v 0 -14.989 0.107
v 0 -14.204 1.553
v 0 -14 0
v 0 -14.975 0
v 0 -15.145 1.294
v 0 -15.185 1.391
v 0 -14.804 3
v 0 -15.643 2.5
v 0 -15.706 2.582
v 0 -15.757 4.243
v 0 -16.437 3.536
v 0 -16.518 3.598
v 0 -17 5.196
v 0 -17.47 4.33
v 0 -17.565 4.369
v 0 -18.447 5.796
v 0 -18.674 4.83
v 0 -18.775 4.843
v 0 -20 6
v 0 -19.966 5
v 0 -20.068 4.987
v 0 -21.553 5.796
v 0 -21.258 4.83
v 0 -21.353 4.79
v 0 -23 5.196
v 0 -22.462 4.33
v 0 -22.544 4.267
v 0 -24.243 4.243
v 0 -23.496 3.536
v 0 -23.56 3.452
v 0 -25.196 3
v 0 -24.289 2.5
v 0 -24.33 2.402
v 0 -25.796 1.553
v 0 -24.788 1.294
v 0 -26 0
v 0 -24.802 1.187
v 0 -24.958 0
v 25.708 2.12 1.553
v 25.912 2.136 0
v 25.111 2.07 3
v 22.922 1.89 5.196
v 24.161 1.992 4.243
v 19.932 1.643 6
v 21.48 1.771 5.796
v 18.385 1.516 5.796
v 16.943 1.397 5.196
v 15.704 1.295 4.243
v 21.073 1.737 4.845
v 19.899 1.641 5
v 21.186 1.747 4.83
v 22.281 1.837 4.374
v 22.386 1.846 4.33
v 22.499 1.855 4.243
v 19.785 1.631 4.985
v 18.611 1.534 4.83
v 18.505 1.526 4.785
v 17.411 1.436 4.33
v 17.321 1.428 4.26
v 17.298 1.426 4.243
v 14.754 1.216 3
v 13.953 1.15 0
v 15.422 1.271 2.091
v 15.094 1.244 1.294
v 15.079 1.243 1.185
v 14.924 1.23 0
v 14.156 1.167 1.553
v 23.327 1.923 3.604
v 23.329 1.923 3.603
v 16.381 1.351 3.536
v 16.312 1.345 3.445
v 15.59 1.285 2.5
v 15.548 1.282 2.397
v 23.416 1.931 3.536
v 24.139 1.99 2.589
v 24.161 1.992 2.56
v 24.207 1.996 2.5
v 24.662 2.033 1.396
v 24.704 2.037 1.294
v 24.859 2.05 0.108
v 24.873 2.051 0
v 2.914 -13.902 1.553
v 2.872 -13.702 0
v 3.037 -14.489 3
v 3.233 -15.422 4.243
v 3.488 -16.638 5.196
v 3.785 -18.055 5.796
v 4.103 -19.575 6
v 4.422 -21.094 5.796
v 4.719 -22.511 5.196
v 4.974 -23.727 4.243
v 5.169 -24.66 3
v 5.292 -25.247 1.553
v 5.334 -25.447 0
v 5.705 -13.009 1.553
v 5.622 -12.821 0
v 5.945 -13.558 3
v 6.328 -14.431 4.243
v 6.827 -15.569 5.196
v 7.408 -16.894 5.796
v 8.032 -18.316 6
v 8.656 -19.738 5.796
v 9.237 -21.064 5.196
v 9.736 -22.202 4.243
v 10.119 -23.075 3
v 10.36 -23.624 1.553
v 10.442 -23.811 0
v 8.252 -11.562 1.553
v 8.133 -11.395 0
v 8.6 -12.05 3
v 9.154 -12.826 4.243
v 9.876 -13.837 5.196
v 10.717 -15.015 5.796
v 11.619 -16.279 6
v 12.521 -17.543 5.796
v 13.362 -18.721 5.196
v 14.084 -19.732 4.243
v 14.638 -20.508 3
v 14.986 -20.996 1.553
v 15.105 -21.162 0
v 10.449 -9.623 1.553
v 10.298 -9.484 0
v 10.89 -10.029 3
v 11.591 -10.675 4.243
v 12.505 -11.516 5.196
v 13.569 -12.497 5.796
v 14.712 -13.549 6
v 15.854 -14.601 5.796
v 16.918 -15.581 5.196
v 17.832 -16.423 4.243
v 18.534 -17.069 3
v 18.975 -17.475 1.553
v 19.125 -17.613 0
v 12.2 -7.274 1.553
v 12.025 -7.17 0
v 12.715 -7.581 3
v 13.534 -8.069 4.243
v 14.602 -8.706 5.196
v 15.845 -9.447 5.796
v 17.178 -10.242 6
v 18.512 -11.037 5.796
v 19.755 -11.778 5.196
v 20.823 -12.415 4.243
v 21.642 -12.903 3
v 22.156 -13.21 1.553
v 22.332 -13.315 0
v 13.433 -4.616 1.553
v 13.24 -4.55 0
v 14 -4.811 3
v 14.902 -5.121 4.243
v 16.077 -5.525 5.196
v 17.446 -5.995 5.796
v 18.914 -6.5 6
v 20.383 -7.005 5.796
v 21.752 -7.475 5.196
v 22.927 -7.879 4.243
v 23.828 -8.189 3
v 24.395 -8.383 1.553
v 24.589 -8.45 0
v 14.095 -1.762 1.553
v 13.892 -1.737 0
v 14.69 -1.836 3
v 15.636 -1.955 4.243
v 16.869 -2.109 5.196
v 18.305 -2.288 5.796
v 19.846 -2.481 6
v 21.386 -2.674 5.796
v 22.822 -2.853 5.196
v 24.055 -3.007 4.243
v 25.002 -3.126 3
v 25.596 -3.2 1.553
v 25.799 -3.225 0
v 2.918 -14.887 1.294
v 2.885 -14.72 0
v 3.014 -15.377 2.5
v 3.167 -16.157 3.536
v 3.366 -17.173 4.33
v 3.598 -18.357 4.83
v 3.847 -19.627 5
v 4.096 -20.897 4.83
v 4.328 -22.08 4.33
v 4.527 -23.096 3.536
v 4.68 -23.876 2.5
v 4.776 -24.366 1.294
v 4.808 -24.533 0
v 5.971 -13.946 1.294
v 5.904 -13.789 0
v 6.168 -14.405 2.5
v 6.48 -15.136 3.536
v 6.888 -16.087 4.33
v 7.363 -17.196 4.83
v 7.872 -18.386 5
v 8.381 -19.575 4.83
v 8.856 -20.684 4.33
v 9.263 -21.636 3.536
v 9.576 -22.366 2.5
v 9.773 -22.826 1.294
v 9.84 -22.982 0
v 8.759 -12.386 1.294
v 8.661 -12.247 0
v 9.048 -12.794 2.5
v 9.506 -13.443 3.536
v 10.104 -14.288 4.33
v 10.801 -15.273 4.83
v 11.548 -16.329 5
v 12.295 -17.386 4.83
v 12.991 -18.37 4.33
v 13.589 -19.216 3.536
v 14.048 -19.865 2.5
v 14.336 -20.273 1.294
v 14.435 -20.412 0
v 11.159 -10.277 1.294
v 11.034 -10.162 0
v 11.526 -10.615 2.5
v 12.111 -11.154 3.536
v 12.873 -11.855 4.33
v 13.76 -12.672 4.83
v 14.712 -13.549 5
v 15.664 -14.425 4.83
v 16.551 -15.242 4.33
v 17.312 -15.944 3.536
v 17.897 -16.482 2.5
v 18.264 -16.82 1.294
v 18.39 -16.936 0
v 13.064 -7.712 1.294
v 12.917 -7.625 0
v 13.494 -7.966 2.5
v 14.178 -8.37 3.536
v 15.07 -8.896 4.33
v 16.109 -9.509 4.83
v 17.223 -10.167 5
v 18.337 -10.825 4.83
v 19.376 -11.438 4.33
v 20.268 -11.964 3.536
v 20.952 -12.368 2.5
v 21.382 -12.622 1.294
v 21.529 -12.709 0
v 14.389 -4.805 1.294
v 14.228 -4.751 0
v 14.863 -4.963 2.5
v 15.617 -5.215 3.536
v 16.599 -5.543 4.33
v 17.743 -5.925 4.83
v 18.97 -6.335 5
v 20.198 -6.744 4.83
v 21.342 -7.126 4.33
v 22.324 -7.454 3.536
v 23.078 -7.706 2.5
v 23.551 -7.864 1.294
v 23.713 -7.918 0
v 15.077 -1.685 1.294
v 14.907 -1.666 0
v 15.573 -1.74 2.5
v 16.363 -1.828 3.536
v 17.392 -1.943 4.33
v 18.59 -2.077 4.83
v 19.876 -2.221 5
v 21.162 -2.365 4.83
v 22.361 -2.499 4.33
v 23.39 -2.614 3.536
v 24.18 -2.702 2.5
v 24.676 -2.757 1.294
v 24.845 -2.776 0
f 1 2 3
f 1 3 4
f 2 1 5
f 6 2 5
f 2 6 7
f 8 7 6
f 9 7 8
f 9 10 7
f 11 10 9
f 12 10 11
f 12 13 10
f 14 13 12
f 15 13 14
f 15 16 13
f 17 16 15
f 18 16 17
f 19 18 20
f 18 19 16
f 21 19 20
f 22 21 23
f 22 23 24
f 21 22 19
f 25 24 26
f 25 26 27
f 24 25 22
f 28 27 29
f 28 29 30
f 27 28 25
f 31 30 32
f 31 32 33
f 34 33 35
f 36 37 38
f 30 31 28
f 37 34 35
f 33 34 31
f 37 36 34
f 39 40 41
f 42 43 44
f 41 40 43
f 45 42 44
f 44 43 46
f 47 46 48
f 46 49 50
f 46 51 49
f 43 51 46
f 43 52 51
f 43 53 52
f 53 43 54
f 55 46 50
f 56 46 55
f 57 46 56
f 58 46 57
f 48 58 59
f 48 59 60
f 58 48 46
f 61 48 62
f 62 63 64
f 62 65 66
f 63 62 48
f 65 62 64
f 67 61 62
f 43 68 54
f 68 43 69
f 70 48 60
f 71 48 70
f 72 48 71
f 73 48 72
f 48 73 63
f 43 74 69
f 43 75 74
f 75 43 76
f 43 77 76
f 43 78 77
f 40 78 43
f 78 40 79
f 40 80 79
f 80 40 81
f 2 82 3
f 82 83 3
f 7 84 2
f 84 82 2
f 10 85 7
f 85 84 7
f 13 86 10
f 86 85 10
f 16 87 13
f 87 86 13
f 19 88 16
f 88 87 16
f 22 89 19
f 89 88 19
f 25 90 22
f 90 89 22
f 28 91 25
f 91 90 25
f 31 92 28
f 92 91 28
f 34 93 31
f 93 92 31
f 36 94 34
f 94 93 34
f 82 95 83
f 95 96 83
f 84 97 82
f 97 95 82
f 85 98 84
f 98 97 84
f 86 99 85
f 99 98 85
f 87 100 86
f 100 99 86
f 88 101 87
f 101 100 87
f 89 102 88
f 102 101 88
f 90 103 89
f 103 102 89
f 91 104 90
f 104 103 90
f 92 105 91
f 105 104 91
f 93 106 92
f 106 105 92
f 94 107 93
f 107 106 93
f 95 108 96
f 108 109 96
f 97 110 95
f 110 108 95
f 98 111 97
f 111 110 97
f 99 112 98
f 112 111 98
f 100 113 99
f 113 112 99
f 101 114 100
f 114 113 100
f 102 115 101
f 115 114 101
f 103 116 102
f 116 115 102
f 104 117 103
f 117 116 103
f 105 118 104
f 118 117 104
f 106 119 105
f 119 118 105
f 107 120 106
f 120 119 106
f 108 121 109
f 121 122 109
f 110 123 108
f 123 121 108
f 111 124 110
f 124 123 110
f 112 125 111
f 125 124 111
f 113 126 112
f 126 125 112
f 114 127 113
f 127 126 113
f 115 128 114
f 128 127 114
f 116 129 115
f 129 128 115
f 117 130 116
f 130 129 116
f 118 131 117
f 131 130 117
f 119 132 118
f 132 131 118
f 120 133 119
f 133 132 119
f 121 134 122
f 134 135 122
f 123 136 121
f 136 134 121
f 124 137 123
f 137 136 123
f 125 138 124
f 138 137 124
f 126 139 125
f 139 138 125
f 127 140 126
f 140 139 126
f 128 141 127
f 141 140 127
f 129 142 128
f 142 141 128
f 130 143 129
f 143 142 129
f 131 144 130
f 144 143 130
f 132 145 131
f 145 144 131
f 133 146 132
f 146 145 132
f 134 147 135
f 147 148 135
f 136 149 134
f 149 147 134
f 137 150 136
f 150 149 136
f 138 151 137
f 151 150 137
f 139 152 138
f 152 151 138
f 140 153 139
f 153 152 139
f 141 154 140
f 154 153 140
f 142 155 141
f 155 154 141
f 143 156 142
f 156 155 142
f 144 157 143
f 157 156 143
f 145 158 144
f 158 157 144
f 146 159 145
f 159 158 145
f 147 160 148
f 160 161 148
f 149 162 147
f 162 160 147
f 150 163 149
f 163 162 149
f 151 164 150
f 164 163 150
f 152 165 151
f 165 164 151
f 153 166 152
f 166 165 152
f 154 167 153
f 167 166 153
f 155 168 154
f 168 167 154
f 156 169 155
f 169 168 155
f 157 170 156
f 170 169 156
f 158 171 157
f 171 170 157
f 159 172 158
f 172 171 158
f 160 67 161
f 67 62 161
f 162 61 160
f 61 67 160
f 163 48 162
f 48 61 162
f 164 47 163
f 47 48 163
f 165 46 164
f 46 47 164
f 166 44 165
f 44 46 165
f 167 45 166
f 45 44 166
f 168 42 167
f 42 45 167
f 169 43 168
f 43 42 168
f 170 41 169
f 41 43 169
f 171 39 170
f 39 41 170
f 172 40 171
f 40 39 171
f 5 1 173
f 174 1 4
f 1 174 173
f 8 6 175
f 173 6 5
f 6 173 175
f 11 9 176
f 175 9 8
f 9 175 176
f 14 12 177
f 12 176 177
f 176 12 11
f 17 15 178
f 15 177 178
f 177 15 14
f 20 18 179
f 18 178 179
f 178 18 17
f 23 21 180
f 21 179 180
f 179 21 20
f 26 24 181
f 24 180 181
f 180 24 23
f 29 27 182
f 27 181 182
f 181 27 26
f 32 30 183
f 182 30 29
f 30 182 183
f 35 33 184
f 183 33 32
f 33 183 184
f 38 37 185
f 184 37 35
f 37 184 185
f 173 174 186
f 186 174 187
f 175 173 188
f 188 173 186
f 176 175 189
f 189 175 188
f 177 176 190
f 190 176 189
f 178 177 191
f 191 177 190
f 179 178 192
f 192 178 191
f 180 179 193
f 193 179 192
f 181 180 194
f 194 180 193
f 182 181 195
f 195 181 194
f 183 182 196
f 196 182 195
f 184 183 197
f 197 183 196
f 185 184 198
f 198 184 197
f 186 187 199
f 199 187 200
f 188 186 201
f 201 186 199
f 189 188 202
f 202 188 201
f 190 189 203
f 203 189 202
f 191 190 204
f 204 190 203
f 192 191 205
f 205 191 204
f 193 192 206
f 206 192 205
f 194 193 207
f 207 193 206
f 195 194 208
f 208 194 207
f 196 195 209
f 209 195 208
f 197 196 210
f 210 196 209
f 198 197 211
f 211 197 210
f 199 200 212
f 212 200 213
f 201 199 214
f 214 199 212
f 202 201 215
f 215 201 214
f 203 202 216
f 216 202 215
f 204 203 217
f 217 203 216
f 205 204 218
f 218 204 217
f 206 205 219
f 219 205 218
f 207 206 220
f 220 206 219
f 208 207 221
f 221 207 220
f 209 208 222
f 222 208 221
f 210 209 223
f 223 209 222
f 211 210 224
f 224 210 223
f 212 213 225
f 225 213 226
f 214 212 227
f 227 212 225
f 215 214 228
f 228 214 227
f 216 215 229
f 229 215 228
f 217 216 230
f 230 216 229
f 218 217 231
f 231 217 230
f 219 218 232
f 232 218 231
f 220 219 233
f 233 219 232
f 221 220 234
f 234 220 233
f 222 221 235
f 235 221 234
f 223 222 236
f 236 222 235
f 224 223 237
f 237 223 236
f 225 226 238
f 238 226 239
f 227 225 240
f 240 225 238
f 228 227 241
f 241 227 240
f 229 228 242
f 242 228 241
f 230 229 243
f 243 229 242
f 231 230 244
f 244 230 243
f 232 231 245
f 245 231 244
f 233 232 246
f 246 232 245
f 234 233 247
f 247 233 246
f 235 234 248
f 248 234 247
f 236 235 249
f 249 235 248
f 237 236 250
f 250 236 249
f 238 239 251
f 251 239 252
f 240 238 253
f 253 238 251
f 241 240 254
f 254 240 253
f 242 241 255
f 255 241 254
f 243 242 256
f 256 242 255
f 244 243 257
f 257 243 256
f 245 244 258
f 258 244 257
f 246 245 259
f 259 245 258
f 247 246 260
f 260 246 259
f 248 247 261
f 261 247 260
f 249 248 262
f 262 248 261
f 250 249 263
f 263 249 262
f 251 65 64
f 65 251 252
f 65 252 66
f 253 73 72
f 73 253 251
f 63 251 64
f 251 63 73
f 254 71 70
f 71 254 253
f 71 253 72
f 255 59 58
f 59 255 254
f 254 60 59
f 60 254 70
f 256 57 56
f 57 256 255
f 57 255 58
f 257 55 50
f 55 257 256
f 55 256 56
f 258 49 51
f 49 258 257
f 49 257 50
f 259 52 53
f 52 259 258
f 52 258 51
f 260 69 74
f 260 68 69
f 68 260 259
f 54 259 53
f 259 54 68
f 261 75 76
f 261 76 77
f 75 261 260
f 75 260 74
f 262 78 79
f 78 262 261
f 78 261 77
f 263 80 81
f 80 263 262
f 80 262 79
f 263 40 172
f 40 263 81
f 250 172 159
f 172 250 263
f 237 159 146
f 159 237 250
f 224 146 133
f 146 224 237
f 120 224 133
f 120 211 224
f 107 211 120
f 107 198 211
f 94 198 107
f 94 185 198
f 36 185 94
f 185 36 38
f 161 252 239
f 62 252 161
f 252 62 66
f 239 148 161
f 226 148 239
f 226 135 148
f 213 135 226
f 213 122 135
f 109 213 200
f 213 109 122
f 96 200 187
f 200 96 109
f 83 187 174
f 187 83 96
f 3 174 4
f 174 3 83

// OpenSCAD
// file: ../build_environments.scad
// build_environments.scad: modules to build level sections
//

module pool(diameter=10.0, wall_height=2.0, step_width=3.0, connections=[])
{
    difference() {
        union() {
        difference() {
            cylinder(h=0.5,r1=diameter+step_width,r2=diameter+step_width,$fn=48);
            translate([0,0,-0.1])
                cylinder(h=0.7,r1=diameter,r2=diameter,$fn=48);
        }
        difference() {
            cylinder(h=wall_height,r1=diameter+step_width+1.0,r2=diameter+step_width+1.0,$fn=48);
            translate([0,0,-0.1])
                cylinder(h=wall_height+0.2,r1=diameter+step_width,r2=diameter+step_width,$fn=48);
        }
        }
    
        for (c = connections)
        {
            rotate([0,90,0]) {
                angle = atan2(c[1],c[0]);
                rotate([-angle,0,0]) {
                    cylinder(h=diameter+5.0,r1=c[2],r2=c[2],$fn=48);
                }
            }
        }
    }
}

module straight(length=10.0, width=2.0, dy1=0.0, dy2=0.0, dz=0.0)
{
    dims = [0, 0, 0, 0, 0, (dz/length)];
    matrix = [
        [ 1, dims[0], dims[1], 0 ],
        [ dims[2], 1, dims[4], 0 ],
        [ dims[5], dims[3], 1, 0 ],
        [ 0, 0, 0, 1 ]
    ];
    multmatrix(matrix)
    difference() {
        translate([dy1,0,0])
        union() {
            rotate([0,90,0]) {
                difference() {
                    cylinder(h=(length-dy1-dy2),r1=width+1.0,r2=width+1.0,$fn=24);
                    translate([0,0,-0.1])
                        cylinder(h=(length-dy1-dy2+0.2),r1=width,r2=width,$fn=24);
                }
                difference() {
                    cylinder(h=1.0,r1=width+2.0,r2=width+2.0,$fn=24);
                    translate([0,0,-0.1])
                        cylinder(h=1.2,r1=width,r2=width,$fn=24);
                }
                translate([0,0,(length-dy1-dy2)-1.0]) {
                    difference() {
                        cylinder(h=1.0,r1=width+2.0,r2=width+2.0,$fn=24);
                        translate([0,0,-0.1])
                            cylinder(h=1.2,r1=width,r2=width,$fn=24);
                    }
                }
            }
        }
        translate([0,0,-(2*width+4.0)/2])
            cube([3*length,3*length,2*width+4.0],center=true);
    }
}

module curve(p0=[0,0], center=[0,0], dir=1, angle=0.0, width=2.0)
{
    radius = sqrt((p0[0]-center[0])*(p0[0]-center[0]) + (p0[1]-center[1])*(p0[1]-center[1]));
    if (dir == 0) {
        difference() {
            rotate([0,0,-90])
            difference() {
                rotate_extrude(angle = angle, convexity = 10, $fn=32)
                    translate([radius, 0, 0])
                        circle(r = width+1.0,$fn=24);
                rotate([0,0,-1.0])
                    rotate_extrude(angle = angle+2.0, convexity = 10, $fn=32)
                        translate([radius, 0, 0])
                            circle(r = width,$fn=24);
            }
            translate([0,0,-(2*width+4.0)/2])
                cube([5*radius,5*radius,2*width+4.0],center=true);
        }
    }
    else {
        difference() {
            rotate([0,0,90])
            difference() {
                rotate_extrude(angle = -angle, convexity = 10, $fn=32)
                    translate([radius, 0, 0])
                        circle(r = width+1.0,$fn=24);
                rotate([0,0,1.0])
                    rotate_extrude(angle = -angle-2.0, convexity = 10, $fn=32)
                        translate([radius, 0, 0])
                            circle(r = width,$fn=24);
            }
            translate([0,0,-(2*width+4.0)/2])
                cube([5*radius,5*radius,2*width+4.0],center=true);
        }
    }

}

// test pool
//pool(diameter=12.0000, wall_height=3.0000, step_width=3.0000, connections=[[0.0000,-26.0000,2.0000], [23.6074,0.0000,2.0000]]);

// test straight, slope
//straight(length=26.0000, width=2.0000, dy1=11.8322, dy2=6.7082, dz=0.0000);
//straight(length=29.1549, width=12.0000, dy1=0.0000, dy2=0.0000, dz=-15.0000);

// test curve
//curve(p0=[23.6074, 0.0000], center=[23.6074, 5.0000], dir=0, angle=60.1011, width=2.0000);
//curve(p0=[33.6426, 12.4219], center=[37.9771, 9.9295], dir=1, angle=120.4627, width=2.0000);
// main file
use <../build_environments.scad>;
curve(p0=[123.0786, -239.5325], center=[143.0397, -238.2851], dir=0, angle=94.7132, width=5.0000);
